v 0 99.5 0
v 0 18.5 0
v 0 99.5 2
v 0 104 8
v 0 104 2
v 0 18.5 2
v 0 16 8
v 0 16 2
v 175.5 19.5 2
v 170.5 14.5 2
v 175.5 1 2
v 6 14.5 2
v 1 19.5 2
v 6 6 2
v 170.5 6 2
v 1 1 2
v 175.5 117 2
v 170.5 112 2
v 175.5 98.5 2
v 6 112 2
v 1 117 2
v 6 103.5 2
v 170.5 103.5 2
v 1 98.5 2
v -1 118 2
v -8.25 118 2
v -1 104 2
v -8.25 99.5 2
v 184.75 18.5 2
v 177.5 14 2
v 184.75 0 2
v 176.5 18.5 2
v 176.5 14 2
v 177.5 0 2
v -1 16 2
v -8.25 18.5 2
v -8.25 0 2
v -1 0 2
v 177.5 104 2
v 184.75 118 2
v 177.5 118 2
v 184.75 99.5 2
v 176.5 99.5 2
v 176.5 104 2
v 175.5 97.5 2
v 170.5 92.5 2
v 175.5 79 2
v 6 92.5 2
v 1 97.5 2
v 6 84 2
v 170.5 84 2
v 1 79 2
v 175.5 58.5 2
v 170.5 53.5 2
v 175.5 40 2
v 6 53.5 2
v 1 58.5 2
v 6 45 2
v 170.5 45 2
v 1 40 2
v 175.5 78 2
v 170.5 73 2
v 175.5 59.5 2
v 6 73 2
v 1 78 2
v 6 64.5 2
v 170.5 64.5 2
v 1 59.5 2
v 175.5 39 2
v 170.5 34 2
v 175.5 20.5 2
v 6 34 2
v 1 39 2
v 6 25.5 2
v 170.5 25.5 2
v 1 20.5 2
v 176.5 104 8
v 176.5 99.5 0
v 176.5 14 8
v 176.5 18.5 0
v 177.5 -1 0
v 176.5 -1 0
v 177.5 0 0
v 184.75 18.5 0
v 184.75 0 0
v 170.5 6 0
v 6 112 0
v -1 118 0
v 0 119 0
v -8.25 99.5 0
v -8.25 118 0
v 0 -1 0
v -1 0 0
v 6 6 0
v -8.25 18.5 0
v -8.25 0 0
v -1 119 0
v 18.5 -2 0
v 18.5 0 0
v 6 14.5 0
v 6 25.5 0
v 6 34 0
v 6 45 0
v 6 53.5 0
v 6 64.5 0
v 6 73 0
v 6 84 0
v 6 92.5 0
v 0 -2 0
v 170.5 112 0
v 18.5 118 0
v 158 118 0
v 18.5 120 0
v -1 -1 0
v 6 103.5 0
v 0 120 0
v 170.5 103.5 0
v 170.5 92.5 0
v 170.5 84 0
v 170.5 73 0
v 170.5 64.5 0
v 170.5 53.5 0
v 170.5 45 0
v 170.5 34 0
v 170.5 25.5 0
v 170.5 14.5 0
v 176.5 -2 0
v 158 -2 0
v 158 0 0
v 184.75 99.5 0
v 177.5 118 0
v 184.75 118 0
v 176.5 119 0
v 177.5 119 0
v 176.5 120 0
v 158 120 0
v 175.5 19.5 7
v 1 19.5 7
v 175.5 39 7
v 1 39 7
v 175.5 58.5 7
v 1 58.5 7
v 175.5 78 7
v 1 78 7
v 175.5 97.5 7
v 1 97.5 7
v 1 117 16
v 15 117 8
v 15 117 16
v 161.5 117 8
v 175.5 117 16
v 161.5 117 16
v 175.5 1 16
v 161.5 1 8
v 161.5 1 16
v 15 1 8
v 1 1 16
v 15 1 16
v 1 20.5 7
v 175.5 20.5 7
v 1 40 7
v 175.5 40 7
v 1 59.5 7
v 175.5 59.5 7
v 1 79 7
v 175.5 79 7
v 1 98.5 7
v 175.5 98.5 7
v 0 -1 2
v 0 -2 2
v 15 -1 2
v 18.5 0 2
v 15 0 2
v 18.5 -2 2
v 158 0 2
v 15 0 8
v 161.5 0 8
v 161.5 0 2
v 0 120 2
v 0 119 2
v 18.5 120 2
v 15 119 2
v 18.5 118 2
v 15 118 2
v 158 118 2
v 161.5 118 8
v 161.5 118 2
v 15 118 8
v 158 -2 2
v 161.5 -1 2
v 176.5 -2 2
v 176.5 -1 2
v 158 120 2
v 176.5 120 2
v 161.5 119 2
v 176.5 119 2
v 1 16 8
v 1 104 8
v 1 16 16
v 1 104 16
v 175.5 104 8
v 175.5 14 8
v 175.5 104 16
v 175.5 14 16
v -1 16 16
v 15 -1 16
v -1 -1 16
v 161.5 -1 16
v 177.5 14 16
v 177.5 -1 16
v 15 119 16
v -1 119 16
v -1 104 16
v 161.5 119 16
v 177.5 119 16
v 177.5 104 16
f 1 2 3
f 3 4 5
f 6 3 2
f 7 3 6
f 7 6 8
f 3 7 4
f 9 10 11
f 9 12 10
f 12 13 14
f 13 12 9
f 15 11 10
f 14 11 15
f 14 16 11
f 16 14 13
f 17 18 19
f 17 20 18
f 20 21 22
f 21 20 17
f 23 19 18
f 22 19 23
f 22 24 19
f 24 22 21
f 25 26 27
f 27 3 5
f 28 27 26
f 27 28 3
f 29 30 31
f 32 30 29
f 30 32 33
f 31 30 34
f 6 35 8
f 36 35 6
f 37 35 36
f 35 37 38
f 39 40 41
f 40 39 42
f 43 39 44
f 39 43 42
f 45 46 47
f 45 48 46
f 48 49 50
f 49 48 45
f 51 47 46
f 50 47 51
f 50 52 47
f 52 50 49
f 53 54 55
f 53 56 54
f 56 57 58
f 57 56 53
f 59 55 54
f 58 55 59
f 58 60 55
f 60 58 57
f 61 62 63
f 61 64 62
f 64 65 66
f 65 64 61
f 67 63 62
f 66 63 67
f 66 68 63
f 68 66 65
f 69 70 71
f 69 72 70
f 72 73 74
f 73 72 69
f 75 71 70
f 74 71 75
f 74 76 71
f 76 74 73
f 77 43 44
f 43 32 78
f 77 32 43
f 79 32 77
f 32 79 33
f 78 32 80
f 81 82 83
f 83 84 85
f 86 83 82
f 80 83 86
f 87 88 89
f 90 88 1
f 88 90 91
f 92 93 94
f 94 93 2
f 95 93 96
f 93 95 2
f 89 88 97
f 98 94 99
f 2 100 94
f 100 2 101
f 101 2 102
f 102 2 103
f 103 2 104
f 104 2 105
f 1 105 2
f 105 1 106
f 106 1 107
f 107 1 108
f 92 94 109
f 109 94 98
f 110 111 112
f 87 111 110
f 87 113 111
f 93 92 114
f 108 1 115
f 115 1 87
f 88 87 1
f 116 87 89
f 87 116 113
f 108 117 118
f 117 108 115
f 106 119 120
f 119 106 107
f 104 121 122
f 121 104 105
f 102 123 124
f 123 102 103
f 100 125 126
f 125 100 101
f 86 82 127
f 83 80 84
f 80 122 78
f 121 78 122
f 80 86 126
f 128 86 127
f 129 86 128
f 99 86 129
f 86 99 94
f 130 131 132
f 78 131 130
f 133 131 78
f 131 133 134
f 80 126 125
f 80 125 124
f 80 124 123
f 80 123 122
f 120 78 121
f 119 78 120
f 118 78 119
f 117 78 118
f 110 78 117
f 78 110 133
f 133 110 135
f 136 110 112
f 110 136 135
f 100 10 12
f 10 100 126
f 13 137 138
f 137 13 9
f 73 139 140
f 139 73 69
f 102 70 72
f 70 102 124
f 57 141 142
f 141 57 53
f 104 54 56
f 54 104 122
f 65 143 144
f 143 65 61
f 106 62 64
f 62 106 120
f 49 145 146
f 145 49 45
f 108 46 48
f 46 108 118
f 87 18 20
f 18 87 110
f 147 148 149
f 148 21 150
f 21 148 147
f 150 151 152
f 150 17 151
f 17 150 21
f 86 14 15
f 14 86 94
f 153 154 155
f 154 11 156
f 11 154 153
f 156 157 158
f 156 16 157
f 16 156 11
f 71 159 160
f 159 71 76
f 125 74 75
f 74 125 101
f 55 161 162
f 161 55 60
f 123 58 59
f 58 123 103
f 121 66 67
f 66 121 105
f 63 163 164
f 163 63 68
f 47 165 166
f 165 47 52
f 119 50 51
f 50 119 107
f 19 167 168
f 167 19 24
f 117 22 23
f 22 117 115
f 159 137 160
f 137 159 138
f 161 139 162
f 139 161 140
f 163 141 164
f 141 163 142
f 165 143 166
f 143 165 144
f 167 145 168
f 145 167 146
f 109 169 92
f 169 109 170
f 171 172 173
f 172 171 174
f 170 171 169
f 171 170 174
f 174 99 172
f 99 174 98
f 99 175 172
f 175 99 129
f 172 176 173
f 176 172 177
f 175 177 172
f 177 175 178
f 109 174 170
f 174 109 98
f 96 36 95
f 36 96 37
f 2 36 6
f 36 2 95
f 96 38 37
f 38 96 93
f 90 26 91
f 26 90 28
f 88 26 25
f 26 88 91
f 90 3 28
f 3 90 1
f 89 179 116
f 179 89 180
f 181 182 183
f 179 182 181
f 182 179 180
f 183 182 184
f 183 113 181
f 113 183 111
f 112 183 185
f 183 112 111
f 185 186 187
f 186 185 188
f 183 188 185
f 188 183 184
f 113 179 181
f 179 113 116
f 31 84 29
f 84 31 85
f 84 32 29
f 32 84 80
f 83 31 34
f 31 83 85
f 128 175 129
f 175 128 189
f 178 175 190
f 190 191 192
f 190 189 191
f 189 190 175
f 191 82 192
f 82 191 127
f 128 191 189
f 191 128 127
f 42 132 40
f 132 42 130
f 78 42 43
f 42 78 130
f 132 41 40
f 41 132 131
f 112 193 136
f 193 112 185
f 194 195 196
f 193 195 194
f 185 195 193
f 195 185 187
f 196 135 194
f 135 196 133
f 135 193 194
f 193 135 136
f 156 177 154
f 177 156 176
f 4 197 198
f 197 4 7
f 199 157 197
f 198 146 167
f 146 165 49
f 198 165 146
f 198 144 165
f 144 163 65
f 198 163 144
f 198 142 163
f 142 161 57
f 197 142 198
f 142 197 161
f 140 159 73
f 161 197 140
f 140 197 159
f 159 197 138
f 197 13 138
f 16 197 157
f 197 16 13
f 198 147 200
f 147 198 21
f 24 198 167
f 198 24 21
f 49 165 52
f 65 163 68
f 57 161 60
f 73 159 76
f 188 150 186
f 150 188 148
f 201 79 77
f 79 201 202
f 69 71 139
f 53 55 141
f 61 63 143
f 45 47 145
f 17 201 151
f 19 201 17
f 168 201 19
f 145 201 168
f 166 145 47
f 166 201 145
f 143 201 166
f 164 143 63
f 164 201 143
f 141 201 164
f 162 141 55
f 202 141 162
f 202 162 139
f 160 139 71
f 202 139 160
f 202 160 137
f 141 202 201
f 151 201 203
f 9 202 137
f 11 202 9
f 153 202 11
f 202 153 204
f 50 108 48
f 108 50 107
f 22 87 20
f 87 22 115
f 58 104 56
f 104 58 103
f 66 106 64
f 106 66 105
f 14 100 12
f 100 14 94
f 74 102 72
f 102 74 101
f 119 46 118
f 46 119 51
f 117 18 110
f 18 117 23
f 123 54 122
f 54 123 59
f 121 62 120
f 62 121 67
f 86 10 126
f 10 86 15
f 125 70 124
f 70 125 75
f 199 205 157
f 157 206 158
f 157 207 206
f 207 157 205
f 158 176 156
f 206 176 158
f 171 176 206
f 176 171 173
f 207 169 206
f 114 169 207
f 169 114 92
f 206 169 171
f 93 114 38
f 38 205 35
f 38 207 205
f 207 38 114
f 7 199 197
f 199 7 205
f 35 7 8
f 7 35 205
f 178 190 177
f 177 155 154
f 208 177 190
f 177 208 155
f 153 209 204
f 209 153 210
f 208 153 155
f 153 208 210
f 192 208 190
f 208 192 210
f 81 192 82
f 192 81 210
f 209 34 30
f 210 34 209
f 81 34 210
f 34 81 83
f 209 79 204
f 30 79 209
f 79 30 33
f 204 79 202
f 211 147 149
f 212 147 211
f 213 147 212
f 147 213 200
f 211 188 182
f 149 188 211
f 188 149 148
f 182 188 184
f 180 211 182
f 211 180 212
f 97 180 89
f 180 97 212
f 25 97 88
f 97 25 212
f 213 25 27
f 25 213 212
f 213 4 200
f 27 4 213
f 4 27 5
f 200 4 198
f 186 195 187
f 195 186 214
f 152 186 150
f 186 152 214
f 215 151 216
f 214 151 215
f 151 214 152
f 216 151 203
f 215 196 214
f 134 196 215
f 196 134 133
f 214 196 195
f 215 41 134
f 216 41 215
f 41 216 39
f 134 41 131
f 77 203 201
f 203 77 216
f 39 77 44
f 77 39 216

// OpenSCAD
// 鍵帽儲存托盤產生器
// Keycap Storage Tray Generator
include <KSTG_Base.SCAD>

// 可複製此樣板檔依照自己需求另存新檔
// 以便以檔案區隔樣式

// 存放盒子的大小:
BoxSize_L1 = 193; //長度(水平)
BoxSize_W1 = 122; //寬度(垂直)
BoxSize_H = 55;  //高度

// 外圍厚度
Tray_Fence_T = 1;  //厚度
Tray_Fence_H = 6;  //高度

// 分隔片
Tray_Separator_T = 1;  //厚度
Tray_Separator_H = 5;  //高度 要高於上一層與鍵帽間的間隙
Tray_Separator_L = 3;  //短隔板長度

// 分隔片(長寬區分/尚未使用)
//Tray_Separator_T_L = 1;  //長(水平) 厚度
//Tray_Separator_T_W = 2;  //寬(垂直) 厚度
//Tray_Separator_H_L = 5;  //長(水平) 高度
//Tray_Separator_H_W = 5;  //寬(垂直) 高度

// 底板
Tray_Bottom_L = 5; //底部分隔板至到底板寬度
Tray_Bottom_T = 2; //底板厚度

//常見鍵帽高度表:
//SA  16.5mm  Cherry 9.4mm
//OEM 11.9mm  TAI HAO 14.8
//XDA 9.1mm   DSA 7.6
//ADA 8mm (18.2x18.2mm )
//適用於 Tray_Column_H 參數

//四角落立柱高度
//堆疊托盤時可墊高避免直接碰觸鍵帽
Tray_Column_H = 14; // 高度 可依照鍵帽高度調整
Tray_Column_T = 2;  // 厚度
Tray_Column_L = 15; // 長面長度
Tray_Column_W = 15; // 寬面長度 

//放置鍵帽空間
Keycaps_Space_L = 18.5;
Keycaps_Space_W = 18.5;

//垂直分隔片樣式
// 0 不需要
// 1 全部
// 2 短隔板無底板
// 3 短隔板有底板

Tray_VS_Type = 0;

//多餘空間處理方式
//How to use the extra space
// 0 不處理，照原本盒子大小產生外圍
// 1 不處理，僅列印鍵帽所需空間
// 2 角落填補剩餘空間
ExtraSpaceUse = 2;

//是否顯示文字標記 0關/1開
ShowText = 1 ;

//清除分隔片與底板
//請參考F5後帶出的座標數值
//例如：
// Tray_Separator_Cut_L=[
// [1,1],[2,1],[3,1],[1,2]
// ];

// 長(水平)分隔片 紅色
Tray_Separator_Cut_L=[
];
// 寬(垂直)分隔片 藍色 -vnm,     
Tray_Separator_Cut_W=[
];
// 交錯點 綠色 長寬分隔片交會處
// 須手動清除交錯點
Tray_Separator_Cut_C=[
];
// 長(水平)底板 紅色
Tray_Separator_Cut_LB=[
];
// 寬(垂直)底板 藍色
Tray_Separator_Cut_WB=[
];
